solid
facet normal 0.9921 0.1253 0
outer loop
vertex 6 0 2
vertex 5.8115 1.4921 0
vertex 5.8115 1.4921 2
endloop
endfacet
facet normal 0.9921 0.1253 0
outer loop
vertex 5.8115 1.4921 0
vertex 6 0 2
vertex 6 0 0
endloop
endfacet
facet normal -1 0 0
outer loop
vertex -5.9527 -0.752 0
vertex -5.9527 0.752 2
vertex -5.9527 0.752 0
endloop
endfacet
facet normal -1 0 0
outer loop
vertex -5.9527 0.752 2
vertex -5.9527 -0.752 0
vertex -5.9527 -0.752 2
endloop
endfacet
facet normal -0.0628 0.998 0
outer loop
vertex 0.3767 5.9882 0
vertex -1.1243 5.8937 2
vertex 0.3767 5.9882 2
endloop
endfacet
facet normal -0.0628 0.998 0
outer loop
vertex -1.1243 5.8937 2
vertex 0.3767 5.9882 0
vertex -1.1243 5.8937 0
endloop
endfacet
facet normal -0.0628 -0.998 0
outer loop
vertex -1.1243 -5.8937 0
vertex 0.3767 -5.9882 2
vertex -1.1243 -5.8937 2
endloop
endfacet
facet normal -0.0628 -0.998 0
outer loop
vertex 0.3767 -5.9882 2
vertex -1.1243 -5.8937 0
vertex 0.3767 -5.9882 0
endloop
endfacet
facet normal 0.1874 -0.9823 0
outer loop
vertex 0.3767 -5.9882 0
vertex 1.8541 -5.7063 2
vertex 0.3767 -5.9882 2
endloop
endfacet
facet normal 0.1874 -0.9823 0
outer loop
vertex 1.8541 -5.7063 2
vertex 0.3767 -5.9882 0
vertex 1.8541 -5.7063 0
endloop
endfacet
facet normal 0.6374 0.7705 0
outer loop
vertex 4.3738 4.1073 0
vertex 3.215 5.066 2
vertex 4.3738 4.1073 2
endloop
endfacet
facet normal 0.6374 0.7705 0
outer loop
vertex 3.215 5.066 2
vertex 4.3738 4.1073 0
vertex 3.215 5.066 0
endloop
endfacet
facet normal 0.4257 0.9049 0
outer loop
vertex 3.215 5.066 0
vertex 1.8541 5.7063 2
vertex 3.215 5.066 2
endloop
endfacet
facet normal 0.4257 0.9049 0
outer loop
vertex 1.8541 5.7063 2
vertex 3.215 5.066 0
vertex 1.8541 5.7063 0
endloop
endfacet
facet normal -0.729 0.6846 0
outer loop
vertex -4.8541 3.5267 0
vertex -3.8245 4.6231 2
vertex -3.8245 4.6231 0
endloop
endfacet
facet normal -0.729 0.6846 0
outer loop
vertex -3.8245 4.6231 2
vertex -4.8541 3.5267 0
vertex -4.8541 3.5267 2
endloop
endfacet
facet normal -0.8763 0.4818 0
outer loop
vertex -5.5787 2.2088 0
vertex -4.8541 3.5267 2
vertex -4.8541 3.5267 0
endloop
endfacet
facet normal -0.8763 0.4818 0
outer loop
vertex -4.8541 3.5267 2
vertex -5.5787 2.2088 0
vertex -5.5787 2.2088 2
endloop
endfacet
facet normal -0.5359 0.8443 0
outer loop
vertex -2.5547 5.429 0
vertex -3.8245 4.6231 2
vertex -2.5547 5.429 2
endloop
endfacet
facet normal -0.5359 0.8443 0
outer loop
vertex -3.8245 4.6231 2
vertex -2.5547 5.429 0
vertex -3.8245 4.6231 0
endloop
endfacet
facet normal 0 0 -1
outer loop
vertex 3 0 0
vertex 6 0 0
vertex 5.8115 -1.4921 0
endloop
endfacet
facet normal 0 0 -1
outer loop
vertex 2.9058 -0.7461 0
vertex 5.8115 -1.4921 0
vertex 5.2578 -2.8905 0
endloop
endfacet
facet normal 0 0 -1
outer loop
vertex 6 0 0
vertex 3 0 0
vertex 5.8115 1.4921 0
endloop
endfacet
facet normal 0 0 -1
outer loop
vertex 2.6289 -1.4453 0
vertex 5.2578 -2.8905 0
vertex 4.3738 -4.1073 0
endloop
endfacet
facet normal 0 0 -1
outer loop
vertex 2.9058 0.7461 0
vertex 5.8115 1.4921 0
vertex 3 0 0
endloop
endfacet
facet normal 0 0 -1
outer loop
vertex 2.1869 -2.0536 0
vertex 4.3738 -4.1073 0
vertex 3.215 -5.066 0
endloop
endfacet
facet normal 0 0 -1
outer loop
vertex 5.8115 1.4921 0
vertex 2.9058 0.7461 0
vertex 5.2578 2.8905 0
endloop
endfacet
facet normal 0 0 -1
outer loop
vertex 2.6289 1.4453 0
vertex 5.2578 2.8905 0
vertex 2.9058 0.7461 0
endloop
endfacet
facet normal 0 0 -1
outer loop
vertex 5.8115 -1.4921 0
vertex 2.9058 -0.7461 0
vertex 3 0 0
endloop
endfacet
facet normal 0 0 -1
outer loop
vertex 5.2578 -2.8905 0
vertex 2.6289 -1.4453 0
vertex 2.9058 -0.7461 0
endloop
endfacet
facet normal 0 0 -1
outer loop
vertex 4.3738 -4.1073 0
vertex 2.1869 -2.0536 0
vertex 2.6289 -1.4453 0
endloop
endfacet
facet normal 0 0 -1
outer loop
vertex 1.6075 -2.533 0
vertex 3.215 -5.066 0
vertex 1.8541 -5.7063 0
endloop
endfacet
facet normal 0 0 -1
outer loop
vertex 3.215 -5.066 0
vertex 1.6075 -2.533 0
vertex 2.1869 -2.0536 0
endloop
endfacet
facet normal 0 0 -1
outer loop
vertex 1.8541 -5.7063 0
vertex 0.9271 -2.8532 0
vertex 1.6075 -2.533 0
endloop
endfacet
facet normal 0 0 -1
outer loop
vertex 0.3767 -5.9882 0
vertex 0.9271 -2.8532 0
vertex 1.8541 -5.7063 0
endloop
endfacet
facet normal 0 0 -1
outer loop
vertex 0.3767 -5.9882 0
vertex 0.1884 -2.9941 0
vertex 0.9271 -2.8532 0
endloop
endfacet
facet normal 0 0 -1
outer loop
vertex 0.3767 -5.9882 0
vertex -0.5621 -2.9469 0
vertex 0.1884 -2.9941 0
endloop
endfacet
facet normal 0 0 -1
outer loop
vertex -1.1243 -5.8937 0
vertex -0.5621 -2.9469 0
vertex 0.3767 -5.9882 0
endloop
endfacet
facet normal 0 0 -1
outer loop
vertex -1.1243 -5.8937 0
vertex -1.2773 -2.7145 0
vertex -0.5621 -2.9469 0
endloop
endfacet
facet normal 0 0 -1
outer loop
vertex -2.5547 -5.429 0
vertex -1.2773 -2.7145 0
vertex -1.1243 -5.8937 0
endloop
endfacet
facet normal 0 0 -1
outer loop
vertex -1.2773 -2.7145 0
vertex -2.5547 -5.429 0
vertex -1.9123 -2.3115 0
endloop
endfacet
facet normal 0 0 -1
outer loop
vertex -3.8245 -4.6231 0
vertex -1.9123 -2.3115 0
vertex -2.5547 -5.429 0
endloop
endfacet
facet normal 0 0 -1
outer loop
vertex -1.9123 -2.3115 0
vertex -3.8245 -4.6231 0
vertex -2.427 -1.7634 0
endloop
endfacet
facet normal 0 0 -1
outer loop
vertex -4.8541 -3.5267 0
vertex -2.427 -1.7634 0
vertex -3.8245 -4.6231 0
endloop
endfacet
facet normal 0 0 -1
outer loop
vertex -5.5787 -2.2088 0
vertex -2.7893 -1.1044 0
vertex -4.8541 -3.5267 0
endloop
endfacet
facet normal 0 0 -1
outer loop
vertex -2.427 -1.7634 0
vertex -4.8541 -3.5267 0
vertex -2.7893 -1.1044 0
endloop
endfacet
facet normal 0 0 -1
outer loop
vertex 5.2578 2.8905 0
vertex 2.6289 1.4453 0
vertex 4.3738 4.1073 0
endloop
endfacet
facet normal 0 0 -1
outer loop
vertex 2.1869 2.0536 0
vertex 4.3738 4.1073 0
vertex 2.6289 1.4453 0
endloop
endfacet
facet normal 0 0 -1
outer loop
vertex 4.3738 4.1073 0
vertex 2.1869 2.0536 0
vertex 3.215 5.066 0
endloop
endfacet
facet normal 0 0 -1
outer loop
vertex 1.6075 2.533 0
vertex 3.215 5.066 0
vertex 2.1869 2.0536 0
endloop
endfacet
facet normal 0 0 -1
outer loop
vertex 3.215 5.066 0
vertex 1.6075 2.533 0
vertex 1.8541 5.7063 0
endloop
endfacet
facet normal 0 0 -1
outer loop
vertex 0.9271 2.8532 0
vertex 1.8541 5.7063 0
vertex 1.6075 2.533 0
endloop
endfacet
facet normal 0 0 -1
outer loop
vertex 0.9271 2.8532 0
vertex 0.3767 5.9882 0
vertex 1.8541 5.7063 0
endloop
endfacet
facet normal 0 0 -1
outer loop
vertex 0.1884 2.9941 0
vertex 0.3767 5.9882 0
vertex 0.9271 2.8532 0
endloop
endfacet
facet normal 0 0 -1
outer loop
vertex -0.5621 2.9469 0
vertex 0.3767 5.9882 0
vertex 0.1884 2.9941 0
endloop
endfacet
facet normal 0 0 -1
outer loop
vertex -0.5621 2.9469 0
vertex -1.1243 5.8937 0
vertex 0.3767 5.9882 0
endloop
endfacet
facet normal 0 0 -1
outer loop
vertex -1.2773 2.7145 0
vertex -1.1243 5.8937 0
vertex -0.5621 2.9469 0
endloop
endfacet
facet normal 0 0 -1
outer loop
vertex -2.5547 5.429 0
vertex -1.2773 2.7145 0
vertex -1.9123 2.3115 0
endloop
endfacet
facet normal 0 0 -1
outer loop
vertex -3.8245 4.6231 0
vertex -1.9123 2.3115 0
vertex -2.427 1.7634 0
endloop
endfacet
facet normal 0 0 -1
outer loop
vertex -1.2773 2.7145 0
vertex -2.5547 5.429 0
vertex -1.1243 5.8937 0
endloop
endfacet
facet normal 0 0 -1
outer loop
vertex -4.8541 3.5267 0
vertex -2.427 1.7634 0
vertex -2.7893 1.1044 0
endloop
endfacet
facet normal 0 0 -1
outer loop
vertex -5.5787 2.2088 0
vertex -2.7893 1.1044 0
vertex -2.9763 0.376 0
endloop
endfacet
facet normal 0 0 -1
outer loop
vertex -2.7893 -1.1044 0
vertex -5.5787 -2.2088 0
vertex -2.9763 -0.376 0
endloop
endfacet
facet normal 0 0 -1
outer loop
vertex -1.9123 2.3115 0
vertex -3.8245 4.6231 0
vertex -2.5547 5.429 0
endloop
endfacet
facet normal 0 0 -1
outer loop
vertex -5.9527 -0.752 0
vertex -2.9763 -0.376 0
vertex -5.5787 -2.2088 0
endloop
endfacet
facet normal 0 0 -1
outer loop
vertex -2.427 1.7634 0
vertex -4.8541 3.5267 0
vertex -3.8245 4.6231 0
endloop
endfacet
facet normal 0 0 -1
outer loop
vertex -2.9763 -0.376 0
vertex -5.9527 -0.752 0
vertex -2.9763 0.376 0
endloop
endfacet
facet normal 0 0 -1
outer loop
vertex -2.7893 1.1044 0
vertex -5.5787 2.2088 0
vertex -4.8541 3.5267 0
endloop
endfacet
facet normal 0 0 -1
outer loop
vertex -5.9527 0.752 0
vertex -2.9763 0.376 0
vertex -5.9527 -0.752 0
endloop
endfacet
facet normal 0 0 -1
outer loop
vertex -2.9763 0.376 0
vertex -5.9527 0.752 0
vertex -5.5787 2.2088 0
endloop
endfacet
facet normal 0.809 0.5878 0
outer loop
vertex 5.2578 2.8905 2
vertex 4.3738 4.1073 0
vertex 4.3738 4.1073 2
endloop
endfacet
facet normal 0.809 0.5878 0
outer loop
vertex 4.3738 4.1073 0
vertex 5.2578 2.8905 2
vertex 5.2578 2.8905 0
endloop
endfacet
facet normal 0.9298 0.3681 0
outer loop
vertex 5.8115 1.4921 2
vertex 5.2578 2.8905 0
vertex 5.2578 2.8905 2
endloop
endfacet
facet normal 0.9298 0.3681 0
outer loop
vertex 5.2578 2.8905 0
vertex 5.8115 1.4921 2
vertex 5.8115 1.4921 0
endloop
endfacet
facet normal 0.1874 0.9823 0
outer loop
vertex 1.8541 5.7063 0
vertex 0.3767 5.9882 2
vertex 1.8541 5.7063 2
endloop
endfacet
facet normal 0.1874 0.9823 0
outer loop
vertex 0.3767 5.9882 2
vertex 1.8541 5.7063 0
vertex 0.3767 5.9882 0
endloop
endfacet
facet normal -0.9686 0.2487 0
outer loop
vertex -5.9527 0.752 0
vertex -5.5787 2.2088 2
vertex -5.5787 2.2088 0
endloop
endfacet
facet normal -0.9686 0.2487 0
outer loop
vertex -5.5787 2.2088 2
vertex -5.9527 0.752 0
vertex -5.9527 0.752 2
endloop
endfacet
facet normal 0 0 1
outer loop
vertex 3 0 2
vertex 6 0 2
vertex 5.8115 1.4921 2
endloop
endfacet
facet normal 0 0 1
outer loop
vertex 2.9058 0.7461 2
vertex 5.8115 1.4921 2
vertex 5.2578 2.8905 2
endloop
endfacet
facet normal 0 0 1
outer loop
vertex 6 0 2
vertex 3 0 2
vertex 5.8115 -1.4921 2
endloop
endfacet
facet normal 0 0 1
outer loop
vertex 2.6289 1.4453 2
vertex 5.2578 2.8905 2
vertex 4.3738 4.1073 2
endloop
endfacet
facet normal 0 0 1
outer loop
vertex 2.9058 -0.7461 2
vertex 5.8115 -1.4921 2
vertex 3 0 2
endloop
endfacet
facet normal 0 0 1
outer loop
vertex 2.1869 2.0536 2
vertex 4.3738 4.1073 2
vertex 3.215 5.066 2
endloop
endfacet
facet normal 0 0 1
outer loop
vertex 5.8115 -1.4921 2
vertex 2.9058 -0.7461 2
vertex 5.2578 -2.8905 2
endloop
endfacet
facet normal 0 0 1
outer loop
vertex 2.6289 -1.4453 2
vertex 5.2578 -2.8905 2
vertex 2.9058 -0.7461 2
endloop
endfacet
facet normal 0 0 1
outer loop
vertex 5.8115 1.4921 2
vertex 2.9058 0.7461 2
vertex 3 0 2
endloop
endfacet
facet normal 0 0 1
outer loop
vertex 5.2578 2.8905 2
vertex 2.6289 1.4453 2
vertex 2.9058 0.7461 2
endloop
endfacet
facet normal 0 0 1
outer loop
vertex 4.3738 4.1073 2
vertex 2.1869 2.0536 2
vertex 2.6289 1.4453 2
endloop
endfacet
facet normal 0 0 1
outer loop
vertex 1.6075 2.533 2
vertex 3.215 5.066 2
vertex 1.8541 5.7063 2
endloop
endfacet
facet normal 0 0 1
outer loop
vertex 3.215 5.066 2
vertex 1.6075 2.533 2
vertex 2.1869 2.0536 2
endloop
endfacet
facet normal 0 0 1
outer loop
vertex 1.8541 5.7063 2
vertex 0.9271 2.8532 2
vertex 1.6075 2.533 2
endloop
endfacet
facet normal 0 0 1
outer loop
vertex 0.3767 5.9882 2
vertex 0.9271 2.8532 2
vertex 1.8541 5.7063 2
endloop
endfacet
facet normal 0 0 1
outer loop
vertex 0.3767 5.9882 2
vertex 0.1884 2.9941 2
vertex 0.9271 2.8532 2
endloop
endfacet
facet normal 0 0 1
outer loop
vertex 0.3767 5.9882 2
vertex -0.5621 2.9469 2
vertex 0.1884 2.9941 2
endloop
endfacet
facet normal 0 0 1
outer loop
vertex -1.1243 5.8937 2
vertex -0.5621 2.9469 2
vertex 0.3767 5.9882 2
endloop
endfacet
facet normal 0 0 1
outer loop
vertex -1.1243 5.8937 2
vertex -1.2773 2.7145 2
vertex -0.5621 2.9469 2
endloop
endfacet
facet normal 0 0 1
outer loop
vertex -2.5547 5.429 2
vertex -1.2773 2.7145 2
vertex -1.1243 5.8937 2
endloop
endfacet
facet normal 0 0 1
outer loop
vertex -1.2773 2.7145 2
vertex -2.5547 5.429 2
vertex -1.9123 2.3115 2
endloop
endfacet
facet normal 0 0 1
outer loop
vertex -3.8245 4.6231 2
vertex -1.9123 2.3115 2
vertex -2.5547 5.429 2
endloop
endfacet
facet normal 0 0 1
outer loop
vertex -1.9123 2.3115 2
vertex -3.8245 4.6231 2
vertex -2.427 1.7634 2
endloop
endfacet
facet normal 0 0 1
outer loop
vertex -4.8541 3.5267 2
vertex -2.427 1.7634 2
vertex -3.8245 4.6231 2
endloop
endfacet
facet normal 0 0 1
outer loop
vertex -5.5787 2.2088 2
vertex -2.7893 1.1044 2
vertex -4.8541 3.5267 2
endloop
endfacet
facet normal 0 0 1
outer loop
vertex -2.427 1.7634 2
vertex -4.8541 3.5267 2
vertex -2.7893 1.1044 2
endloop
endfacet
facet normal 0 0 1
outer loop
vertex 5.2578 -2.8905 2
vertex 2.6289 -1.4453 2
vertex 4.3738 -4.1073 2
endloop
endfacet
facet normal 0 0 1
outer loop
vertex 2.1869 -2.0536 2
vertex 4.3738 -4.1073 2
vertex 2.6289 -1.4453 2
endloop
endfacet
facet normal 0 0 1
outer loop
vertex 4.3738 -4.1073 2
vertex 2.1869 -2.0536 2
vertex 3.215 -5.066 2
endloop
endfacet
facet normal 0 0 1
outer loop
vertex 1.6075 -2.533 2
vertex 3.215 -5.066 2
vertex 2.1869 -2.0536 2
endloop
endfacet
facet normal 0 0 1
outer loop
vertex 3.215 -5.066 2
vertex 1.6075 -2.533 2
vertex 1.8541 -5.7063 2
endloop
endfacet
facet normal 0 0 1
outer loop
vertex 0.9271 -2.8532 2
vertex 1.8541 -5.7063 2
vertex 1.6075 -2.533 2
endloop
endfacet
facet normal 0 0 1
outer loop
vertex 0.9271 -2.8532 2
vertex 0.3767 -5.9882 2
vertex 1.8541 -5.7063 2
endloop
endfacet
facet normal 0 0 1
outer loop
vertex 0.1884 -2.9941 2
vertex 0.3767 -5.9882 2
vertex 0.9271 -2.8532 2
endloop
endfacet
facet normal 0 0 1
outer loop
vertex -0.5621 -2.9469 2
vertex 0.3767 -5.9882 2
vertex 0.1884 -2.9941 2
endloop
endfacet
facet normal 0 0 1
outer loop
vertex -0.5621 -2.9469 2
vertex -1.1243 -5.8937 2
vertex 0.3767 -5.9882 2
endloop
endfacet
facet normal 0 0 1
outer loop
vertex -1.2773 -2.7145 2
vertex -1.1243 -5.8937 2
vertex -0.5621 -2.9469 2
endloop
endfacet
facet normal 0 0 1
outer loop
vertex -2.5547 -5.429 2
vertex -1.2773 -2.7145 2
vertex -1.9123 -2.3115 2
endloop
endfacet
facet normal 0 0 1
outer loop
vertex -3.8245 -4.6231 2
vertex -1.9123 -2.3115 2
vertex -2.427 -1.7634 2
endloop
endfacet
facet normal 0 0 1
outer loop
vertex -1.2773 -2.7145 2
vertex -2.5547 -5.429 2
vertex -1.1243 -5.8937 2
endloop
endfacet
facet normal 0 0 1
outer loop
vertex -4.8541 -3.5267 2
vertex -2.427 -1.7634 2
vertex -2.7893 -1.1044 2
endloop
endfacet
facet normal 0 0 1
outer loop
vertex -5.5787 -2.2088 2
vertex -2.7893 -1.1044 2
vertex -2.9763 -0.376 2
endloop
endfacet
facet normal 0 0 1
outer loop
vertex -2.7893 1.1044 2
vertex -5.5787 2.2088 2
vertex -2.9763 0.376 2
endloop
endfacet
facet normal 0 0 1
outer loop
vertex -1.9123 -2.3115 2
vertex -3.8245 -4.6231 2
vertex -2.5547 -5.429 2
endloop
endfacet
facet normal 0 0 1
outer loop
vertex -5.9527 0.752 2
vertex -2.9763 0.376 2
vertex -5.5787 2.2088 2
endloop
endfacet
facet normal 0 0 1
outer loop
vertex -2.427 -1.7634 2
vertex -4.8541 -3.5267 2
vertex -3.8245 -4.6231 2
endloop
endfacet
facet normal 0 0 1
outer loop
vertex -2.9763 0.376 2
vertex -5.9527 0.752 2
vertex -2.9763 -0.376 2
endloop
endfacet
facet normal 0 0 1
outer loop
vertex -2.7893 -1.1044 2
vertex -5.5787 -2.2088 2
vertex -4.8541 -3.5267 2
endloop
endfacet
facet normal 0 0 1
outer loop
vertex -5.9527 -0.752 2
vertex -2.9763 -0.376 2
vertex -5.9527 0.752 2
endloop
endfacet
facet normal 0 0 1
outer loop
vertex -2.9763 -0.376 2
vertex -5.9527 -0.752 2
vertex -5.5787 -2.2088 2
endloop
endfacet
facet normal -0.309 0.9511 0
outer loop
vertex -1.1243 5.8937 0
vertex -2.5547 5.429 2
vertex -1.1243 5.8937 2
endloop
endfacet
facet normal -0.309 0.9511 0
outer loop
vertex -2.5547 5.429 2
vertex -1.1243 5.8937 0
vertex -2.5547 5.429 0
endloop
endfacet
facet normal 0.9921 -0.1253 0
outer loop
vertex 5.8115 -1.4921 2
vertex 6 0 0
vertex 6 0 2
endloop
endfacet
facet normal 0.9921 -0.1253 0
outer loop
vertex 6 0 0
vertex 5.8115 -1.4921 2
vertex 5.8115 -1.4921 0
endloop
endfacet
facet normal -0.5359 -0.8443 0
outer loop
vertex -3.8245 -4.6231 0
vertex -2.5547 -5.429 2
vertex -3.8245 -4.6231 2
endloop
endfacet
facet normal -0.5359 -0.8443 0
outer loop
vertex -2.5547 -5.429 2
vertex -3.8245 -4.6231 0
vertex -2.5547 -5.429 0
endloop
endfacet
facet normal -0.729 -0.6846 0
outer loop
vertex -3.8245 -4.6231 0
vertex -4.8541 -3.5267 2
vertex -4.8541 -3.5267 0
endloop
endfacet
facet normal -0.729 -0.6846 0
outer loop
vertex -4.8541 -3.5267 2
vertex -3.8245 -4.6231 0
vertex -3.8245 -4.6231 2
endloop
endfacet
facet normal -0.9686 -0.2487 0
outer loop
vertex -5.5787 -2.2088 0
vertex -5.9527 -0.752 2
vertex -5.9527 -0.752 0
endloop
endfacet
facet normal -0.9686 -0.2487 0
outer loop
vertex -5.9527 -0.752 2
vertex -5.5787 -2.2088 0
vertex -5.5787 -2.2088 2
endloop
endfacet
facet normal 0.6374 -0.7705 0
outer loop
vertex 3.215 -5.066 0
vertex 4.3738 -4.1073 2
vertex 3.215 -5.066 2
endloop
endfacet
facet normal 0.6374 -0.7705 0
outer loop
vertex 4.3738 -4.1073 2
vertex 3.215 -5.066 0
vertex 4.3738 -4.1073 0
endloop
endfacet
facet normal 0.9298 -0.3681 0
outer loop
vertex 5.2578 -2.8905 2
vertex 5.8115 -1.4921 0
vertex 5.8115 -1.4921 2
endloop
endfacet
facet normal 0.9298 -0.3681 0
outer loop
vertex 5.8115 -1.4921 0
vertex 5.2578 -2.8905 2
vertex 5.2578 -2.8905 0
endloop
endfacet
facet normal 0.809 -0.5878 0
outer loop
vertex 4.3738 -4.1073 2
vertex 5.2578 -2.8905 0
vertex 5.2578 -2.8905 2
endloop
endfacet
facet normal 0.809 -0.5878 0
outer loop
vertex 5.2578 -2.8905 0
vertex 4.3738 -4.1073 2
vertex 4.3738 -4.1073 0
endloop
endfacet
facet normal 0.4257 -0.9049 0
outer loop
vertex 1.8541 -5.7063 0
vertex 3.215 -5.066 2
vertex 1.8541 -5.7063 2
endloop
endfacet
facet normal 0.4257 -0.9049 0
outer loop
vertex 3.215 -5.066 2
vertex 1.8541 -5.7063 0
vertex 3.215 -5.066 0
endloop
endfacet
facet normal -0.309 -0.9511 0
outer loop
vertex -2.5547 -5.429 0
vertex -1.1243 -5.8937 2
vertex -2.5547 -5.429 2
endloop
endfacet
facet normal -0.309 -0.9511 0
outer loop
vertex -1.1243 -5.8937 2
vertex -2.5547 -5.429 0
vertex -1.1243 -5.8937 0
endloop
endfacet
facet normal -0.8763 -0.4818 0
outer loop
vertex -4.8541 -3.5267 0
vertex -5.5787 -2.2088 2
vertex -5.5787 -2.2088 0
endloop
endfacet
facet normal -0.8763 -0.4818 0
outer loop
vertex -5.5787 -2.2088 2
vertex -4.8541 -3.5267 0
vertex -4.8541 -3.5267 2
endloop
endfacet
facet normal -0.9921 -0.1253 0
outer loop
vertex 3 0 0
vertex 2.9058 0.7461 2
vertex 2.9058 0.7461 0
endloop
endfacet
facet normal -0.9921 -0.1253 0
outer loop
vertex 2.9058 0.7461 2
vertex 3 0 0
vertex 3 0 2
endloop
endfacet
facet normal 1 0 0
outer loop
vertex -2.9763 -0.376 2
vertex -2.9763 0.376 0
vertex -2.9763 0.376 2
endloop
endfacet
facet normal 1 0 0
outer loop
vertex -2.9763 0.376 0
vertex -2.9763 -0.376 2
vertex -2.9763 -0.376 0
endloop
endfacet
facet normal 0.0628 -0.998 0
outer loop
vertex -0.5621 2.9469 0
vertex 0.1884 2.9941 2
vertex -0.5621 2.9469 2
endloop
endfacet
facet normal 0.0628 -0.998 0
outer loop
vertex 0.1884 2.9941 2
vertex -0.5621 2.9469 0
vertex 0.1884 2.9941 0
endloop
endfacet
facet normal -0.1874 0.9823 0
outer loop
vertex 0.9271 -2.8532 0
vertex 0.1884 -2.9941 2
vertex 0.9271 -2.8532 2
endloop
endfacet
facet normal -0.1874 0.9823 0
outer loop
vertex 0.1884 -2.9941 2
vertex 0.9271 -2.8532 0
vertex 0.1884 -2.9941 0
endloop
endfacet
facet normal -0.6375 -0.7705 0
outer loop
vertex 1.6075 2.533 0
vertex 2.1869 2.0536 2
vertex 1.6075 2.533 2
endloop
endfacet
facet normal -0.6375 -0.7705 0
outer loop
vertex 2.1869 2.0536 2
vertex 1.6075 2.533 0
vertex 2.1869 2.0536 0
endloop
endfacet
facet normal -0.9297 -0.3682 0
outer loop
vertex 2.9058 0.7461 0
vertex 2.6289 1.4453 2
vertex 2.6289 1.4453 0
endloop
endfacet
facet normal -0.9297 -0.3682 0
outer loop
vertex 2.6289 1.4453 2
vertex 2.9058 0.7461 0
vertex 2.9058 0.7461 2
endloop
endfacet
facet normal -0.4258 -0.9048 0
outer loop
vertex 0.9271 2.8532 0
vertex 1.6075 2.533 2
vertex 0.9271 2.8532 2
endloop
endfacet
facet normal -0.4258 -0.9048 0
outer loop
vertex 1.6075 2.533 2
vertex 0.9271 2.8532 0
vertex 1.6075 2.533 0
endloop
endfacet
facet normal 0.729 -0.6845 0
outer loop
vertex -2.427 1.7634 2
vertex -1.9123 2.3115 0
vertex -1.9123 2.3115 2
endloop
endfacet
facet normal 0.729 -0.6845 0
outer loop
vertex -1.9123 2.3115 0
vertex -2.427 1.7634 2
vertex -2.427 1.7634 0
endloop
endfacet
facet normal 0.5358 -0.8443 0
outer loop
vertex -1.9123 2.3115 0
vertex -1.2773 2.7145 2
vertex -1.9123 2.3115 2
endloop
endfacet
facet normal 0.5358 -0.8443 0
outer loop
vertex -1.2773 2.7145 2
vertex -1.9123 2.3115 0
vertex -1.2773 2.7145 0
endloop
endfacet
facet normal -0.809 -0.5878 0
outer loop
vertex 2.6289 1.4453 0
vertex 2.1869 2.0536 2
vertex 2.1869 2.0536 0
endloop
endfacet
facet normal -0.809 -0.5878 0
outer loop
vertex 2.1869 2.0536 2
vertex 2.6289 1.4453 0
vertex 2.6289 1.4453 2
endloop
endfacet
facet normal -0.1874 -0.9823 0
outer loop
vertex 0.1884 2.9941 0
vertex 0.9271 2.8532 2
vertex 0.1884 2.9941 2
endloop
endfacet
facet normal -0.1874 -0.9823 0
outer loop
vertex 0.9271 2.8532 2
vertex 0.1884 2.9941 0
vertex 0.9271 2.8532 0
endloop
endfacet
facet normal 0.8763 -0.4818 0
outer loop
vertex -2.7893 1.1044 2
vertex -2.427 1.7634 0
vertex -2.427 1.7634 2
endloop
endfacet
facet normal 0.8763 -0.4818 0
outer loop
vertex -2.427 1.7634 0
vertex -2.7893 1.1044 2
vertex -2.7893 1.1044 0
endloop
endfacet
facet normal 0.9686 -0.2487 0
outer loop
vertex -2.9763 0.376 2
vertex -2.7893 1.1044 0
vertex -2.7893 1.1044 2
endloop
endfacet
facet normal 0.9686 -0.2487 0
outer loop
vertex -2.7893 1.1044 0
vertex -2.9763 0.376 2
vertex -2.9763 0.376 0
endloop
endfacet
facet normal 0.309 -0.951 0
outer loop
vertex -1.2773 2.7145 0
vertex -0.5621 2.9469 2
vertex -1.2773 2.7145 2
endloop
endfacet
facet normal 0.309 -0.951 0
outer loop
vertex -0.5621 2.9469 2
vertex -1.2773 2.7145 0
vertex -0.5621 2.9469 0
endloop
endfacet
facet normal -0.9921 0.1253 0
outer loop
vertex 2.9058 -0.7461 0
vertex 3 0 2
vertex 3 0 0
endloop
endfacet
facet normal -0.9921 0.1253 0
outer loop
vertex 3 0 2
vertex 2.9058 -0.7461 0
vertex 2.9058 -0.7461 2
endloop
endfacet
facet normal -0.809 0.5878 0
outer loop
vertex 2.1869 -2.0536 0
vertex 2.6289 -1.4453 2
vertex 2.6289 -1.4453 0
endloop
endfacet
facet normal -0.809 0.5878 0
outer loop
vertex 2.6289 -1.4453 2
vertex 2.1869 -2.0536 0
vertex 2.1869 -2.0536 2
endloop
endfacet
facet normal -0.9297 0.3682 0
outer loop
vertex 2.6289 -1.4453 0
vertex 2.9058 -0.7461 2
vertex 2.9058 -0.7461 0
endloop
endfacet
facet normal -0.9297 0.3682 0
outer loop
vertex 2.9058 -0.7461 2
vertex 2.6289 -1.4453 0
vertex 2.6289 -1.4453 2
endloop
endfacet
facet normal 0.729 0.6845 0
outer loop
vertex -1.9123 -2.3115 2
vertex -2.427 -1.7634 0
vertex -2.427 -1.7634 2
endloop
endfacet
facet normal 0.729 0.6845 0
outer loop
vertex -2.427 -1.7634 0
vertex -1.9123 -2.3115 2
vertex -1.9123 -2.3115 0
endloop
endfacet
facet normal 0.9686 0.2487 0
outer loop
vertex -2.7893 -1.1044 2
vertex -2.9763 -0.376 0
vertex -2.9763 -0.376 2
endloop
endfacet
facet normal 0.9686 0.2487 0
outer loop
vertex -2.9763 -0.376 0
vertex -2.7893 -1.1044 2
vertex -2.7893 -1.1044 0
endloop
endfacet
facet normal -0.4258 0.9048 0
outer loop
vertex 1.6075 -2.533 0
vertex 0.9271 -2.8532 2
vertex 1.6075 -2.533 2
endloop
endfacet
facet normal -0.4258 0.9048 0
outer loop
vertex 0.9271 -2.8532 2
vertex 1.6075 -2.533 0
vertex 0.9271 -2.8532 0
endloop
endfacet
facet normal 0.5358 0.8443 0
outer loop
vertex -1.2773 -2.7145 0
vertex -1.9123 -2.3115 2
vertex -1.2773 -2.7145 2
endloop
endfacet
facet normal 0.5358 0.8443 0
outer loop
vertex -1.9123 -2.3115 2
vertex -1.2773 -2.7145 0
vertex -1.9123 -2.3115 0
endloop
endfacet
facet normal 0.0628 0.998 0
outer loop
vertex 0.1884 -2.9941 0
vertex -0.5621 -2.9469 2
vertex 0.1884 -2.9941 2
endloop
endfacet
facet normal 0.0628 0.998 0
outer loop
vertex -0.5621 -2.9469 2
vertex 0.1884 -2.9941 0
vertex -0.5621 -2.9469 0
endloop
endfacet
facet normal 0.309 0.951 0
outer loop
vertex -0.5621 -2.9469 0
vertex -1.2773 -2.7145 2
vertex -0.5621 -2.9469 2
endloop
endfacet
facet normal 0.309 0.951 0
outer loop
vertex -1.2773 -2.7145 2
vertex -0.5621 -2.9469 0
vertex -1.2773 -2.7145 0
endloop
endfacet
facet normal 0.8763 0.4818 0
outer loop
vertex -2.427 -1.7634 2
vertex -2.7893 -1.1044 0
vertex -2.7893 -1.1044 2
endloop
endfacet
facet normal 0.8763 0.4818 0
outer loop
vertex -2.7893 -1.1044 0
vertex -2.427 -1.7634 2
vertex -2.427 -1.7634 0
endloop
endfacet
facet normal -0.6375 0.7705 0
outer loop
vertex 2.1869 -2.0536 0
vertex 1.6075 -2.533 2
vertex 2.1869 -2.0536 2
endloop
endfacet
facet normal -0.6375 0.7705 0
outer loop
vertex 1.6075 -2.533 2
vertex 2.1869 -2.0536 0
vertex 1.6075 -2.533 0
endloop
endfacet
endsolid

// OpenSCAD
quality=25;

pin_socket=3;
backing_thickness=2;

difference()
{
  cylinder(r=pin_socket*2,h=backing_thickness,$fn=quality);
  cylinder(r=pin_socket,h=backing_thickness,$fn=quality);
}
